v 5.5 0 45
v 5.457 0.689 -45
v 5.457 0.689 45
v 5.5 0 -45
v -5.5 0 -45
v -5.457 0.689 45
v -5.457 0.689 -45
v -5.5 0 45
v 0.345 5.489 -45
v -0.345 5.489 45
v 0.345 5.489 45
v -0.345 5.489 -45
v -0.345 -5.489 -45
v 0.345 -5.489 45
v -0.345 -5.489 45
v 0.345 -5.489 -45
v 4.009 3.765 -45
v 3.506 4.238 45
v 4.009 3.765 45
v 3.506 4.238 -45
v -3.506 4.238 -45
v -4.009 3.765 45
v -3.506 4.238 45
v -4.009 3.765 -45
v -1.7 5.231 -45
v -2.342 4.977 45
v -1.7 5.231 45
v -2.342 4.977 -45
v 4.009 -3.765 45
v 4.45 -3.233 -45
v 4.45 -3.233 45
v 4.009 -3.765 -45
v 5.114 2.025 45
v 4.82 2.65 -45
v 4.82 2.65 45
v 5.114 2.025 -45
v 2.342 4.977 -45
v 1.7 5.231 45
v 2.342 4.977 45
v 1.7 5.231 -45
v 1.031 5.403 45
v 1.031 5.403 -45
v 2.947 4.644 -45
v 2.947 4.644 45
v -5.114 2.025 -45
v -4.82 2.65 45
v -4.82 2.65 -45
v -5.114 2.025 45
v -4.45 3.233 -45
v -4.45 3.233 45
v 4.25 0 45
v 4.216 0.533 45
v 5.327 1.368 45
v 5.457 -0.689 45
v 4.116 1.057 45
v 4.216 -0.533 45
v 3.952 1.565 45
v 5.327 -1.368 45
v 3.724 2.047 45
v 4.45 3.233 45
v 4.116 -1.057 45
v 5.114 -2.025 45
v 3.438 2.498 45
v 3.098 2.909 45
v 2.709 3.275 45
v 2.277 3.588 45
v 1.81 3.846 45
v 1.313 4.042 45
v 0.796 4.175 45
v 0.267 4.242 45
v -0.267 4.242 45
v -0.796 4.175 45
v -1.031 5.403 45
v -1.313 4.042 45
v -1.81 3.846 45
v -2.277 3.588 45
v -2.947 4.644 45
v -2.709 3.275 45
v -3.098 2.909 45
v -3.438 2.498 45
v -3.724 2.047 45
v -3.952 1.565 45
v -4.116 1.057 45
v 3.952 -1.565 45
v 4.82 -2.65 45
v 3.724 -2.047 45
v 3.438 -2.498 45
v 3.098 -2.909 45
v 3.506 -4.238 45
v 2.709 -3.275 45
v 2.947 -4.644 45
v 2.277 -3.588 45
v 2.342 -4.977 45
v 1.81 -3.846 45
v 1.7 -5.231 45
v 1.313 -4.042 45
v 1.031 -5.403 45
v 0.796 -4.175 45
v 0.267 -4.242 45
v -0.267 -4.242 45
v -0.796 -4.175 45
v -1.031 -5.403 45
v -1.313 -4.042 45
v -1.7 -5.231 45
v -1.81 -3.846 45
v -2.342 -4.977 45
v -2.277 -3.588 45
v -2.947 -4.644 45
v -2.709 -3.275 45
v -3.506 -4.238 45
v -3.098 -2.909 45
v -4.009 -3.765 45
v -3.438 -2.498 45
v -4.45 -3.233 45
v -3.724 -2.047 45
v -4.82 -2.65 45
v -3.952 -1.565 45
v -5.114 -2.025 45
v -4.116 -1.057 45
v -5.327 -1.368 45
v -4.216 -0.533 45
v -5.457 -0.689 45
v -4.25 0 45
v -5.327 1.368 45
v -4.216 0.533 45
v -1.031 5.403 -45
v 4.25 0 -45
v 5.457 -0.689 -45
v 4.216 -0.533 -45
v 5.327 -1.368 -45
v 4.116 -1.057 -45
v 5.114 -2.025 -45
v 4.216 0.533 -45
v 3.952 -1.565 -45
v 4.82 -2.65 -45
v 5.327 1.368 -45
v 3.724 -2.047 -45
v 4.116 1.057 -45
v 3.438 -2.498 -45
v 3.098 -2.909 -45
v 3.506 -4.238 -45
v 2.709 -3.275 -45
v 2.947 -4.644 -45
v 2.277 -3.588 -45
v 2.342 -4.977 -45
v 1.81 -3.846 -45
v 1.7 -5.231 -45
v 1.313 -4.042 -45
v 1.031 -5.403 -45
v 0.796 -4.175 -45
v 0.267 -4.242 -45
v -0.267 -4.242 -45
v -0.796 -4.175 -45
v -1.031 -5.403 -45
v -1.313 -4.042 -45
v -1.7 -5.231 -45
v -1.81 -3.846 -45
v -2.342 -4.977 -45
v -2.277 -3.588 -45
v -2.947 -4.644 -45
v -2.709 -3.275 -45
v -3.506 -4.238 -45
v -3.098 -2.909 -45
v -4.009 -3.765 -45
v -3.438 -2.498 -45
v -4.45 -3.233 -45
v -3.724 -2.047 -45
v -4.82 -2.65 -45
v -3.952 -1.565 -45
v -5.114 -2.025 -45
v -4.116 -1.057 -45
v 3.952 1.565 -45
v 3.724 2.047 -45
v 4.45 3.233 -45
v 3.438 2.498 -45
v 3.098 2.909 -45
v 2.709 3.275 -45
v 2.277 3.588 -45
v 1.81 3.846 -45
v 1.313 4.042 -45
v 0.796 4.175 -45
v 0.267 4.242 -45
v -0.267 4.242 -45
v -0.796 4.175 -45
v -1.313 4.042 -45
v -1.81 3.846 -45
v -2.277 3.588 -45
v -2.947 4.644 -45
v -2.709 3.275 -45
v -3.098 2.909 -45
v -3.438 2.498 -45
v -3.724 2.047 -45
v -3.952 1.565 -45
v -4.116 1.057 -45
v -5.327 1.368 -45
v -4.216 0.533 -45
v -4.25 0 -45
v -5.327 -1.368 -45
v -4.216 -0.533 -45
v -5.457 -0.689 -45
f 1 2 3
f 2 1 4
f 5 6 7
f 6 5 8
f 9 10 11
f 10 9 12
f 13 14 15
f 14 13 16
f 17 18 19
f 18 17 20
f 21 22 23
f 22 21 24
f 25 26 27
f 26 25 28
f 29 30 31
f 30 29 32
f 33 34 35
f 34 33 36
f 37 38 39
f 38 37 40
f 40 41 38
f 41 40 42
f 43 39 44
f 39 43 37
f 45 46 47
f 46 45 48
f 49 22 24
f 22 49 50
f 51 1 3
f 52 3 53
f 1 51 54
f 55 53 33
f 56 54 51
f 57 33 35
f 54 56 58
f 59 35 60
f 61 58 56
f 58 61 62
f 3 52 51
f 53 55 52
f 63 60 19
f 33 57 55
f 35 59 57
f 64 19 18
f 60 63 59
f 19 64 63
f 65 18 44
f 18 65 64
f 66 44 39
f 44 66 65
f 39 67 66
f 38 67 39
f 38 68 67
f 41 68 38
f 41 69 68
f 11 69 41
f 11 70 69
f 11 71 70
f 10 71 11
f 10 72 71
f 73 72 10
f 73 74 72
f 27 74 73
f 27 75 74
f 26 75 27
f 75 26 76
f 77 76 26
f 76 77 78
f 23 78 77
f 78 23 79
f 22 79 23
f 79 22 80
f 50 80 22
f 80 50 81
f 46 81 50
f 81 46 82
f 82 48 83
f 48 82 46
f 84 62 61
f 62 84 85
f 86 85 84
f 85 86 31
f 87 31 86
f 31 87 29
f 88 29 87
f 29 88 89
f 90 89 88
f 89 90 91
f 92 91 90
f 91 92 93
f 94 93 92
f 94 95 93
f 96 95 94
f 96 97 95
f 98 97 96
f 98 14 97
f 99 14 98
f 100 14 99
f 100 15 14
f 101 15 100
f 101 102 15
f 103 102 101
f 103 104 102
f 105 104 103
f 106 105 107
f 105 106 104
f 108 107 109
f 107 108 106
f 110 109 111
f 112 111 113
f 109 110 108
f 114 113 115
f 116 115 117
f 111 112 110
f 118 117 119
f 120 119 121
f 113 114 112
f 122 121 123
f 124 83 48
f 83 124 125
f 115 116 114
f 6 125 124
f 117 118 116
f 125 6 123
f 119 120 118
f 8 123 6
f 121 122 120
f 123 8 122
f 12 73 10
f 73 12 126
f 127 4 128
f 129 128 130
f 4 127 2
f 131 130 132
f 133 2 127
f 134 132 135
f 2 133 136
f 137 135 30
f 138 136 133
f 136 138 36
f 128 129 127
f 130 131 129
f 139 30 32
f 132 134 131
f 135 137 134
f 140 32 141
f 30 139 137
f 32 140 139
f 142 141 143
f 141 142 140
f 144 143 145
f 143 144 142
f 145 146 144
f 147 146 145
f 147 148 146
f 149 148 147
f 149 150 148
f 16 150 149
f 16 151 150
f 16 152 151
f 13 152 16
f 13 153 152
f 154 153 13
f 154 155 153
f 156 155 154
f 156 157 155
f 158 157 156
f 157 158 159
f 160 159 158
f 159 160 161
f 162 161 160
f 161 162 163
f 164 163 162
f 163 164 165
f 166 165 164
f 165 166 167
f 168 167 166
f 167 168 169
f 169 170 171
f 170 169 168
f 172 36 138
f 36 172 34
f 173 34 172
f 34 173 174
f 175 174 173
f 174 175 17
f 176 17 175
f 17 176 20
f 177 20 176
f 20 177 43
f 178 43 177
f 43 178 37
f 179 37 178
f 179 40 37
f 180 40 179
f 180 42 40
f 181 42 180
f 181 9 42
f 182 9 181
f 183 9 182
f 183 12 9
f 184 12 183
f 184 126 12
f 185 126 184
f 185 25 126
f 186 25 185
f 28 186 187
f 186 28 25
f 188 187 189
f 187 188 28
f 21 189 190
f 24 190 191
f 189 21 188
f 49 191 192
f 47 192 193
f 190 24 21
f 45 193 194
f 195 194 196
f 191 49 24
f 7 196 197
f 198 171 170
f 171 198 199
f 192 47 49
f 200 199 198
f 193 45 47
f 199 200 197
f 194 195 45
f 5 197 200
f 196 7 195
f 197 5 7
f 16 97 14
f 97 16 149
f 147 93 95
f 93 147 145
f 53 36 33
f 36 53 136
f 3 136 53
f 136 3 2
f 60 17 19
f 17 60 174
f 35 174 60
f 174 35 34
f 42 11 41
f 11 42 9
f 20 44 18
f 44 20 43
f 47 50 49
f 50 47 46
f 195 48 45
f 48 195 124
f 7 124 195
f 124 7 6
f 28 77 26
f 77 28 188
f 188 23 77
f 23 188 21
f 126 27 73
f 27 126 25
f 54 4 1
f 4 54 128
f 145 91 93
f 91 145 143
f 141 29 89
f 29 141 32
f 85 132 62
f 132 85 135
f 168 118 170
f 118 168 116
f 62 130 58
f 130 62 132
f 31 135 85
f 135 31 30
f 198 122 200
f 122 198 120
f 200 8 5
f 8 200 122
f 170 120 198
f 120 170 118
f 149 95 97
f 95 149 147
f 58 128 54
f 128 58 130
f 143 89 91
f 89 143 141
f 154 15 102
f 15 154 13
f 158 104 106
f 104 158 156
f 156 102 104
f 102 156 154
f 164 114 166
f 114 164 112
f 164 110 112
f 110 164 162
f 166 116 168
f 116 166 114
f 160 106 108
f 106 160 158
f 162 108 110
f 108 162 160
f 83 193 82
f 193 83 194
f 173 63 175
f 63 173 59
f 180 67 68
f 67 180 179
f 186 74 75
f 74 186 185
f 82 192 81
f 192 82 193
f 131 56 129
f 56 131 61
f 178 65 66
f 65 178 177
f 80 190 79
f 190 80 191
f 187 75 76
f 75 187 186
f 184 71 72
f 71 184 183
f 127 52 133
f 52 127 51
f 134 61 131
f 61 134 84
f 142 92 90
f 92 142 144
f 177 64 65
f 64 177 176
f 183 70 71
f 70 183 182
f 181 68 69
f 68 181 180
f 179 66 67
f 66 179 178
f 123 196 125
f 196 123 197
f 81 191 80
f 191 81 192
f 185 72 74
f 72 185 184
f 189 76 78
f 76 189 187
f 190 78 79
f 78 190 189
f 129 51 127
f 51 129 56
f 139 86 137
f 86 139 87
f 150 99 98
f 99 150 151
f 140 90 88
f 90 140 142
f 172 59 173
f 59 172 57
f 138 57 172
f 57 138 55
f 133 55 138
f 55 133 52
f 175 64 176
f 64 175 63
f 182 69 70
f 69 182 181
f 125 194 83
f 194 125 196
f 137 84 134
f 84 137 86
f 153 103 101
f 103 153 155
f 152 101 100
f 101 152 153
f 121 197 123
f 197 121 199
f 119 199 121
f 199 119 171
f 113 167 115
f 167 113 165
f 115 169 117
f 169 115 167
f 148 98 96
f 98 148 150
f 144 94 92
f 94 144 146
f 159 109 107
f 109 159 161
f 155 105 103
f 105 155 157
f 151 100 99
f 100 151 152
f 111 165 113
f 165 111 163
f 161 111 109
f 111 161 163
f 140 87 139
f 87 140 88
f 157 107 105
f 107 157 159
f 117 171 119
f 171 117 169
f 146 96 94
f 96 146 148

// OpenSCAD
$fn = 50;


difference() {
	union() {
		translate(v = [0, 0, -45.0000000000]) {
			cylinder(h = 90, r = 5.5000000000);
		}
	}
	union() {
		translate(v = [0, 0, -100.0000000000]) {
			cylinder(h = 200, r = 4.2500000000);
		}
	}
}
